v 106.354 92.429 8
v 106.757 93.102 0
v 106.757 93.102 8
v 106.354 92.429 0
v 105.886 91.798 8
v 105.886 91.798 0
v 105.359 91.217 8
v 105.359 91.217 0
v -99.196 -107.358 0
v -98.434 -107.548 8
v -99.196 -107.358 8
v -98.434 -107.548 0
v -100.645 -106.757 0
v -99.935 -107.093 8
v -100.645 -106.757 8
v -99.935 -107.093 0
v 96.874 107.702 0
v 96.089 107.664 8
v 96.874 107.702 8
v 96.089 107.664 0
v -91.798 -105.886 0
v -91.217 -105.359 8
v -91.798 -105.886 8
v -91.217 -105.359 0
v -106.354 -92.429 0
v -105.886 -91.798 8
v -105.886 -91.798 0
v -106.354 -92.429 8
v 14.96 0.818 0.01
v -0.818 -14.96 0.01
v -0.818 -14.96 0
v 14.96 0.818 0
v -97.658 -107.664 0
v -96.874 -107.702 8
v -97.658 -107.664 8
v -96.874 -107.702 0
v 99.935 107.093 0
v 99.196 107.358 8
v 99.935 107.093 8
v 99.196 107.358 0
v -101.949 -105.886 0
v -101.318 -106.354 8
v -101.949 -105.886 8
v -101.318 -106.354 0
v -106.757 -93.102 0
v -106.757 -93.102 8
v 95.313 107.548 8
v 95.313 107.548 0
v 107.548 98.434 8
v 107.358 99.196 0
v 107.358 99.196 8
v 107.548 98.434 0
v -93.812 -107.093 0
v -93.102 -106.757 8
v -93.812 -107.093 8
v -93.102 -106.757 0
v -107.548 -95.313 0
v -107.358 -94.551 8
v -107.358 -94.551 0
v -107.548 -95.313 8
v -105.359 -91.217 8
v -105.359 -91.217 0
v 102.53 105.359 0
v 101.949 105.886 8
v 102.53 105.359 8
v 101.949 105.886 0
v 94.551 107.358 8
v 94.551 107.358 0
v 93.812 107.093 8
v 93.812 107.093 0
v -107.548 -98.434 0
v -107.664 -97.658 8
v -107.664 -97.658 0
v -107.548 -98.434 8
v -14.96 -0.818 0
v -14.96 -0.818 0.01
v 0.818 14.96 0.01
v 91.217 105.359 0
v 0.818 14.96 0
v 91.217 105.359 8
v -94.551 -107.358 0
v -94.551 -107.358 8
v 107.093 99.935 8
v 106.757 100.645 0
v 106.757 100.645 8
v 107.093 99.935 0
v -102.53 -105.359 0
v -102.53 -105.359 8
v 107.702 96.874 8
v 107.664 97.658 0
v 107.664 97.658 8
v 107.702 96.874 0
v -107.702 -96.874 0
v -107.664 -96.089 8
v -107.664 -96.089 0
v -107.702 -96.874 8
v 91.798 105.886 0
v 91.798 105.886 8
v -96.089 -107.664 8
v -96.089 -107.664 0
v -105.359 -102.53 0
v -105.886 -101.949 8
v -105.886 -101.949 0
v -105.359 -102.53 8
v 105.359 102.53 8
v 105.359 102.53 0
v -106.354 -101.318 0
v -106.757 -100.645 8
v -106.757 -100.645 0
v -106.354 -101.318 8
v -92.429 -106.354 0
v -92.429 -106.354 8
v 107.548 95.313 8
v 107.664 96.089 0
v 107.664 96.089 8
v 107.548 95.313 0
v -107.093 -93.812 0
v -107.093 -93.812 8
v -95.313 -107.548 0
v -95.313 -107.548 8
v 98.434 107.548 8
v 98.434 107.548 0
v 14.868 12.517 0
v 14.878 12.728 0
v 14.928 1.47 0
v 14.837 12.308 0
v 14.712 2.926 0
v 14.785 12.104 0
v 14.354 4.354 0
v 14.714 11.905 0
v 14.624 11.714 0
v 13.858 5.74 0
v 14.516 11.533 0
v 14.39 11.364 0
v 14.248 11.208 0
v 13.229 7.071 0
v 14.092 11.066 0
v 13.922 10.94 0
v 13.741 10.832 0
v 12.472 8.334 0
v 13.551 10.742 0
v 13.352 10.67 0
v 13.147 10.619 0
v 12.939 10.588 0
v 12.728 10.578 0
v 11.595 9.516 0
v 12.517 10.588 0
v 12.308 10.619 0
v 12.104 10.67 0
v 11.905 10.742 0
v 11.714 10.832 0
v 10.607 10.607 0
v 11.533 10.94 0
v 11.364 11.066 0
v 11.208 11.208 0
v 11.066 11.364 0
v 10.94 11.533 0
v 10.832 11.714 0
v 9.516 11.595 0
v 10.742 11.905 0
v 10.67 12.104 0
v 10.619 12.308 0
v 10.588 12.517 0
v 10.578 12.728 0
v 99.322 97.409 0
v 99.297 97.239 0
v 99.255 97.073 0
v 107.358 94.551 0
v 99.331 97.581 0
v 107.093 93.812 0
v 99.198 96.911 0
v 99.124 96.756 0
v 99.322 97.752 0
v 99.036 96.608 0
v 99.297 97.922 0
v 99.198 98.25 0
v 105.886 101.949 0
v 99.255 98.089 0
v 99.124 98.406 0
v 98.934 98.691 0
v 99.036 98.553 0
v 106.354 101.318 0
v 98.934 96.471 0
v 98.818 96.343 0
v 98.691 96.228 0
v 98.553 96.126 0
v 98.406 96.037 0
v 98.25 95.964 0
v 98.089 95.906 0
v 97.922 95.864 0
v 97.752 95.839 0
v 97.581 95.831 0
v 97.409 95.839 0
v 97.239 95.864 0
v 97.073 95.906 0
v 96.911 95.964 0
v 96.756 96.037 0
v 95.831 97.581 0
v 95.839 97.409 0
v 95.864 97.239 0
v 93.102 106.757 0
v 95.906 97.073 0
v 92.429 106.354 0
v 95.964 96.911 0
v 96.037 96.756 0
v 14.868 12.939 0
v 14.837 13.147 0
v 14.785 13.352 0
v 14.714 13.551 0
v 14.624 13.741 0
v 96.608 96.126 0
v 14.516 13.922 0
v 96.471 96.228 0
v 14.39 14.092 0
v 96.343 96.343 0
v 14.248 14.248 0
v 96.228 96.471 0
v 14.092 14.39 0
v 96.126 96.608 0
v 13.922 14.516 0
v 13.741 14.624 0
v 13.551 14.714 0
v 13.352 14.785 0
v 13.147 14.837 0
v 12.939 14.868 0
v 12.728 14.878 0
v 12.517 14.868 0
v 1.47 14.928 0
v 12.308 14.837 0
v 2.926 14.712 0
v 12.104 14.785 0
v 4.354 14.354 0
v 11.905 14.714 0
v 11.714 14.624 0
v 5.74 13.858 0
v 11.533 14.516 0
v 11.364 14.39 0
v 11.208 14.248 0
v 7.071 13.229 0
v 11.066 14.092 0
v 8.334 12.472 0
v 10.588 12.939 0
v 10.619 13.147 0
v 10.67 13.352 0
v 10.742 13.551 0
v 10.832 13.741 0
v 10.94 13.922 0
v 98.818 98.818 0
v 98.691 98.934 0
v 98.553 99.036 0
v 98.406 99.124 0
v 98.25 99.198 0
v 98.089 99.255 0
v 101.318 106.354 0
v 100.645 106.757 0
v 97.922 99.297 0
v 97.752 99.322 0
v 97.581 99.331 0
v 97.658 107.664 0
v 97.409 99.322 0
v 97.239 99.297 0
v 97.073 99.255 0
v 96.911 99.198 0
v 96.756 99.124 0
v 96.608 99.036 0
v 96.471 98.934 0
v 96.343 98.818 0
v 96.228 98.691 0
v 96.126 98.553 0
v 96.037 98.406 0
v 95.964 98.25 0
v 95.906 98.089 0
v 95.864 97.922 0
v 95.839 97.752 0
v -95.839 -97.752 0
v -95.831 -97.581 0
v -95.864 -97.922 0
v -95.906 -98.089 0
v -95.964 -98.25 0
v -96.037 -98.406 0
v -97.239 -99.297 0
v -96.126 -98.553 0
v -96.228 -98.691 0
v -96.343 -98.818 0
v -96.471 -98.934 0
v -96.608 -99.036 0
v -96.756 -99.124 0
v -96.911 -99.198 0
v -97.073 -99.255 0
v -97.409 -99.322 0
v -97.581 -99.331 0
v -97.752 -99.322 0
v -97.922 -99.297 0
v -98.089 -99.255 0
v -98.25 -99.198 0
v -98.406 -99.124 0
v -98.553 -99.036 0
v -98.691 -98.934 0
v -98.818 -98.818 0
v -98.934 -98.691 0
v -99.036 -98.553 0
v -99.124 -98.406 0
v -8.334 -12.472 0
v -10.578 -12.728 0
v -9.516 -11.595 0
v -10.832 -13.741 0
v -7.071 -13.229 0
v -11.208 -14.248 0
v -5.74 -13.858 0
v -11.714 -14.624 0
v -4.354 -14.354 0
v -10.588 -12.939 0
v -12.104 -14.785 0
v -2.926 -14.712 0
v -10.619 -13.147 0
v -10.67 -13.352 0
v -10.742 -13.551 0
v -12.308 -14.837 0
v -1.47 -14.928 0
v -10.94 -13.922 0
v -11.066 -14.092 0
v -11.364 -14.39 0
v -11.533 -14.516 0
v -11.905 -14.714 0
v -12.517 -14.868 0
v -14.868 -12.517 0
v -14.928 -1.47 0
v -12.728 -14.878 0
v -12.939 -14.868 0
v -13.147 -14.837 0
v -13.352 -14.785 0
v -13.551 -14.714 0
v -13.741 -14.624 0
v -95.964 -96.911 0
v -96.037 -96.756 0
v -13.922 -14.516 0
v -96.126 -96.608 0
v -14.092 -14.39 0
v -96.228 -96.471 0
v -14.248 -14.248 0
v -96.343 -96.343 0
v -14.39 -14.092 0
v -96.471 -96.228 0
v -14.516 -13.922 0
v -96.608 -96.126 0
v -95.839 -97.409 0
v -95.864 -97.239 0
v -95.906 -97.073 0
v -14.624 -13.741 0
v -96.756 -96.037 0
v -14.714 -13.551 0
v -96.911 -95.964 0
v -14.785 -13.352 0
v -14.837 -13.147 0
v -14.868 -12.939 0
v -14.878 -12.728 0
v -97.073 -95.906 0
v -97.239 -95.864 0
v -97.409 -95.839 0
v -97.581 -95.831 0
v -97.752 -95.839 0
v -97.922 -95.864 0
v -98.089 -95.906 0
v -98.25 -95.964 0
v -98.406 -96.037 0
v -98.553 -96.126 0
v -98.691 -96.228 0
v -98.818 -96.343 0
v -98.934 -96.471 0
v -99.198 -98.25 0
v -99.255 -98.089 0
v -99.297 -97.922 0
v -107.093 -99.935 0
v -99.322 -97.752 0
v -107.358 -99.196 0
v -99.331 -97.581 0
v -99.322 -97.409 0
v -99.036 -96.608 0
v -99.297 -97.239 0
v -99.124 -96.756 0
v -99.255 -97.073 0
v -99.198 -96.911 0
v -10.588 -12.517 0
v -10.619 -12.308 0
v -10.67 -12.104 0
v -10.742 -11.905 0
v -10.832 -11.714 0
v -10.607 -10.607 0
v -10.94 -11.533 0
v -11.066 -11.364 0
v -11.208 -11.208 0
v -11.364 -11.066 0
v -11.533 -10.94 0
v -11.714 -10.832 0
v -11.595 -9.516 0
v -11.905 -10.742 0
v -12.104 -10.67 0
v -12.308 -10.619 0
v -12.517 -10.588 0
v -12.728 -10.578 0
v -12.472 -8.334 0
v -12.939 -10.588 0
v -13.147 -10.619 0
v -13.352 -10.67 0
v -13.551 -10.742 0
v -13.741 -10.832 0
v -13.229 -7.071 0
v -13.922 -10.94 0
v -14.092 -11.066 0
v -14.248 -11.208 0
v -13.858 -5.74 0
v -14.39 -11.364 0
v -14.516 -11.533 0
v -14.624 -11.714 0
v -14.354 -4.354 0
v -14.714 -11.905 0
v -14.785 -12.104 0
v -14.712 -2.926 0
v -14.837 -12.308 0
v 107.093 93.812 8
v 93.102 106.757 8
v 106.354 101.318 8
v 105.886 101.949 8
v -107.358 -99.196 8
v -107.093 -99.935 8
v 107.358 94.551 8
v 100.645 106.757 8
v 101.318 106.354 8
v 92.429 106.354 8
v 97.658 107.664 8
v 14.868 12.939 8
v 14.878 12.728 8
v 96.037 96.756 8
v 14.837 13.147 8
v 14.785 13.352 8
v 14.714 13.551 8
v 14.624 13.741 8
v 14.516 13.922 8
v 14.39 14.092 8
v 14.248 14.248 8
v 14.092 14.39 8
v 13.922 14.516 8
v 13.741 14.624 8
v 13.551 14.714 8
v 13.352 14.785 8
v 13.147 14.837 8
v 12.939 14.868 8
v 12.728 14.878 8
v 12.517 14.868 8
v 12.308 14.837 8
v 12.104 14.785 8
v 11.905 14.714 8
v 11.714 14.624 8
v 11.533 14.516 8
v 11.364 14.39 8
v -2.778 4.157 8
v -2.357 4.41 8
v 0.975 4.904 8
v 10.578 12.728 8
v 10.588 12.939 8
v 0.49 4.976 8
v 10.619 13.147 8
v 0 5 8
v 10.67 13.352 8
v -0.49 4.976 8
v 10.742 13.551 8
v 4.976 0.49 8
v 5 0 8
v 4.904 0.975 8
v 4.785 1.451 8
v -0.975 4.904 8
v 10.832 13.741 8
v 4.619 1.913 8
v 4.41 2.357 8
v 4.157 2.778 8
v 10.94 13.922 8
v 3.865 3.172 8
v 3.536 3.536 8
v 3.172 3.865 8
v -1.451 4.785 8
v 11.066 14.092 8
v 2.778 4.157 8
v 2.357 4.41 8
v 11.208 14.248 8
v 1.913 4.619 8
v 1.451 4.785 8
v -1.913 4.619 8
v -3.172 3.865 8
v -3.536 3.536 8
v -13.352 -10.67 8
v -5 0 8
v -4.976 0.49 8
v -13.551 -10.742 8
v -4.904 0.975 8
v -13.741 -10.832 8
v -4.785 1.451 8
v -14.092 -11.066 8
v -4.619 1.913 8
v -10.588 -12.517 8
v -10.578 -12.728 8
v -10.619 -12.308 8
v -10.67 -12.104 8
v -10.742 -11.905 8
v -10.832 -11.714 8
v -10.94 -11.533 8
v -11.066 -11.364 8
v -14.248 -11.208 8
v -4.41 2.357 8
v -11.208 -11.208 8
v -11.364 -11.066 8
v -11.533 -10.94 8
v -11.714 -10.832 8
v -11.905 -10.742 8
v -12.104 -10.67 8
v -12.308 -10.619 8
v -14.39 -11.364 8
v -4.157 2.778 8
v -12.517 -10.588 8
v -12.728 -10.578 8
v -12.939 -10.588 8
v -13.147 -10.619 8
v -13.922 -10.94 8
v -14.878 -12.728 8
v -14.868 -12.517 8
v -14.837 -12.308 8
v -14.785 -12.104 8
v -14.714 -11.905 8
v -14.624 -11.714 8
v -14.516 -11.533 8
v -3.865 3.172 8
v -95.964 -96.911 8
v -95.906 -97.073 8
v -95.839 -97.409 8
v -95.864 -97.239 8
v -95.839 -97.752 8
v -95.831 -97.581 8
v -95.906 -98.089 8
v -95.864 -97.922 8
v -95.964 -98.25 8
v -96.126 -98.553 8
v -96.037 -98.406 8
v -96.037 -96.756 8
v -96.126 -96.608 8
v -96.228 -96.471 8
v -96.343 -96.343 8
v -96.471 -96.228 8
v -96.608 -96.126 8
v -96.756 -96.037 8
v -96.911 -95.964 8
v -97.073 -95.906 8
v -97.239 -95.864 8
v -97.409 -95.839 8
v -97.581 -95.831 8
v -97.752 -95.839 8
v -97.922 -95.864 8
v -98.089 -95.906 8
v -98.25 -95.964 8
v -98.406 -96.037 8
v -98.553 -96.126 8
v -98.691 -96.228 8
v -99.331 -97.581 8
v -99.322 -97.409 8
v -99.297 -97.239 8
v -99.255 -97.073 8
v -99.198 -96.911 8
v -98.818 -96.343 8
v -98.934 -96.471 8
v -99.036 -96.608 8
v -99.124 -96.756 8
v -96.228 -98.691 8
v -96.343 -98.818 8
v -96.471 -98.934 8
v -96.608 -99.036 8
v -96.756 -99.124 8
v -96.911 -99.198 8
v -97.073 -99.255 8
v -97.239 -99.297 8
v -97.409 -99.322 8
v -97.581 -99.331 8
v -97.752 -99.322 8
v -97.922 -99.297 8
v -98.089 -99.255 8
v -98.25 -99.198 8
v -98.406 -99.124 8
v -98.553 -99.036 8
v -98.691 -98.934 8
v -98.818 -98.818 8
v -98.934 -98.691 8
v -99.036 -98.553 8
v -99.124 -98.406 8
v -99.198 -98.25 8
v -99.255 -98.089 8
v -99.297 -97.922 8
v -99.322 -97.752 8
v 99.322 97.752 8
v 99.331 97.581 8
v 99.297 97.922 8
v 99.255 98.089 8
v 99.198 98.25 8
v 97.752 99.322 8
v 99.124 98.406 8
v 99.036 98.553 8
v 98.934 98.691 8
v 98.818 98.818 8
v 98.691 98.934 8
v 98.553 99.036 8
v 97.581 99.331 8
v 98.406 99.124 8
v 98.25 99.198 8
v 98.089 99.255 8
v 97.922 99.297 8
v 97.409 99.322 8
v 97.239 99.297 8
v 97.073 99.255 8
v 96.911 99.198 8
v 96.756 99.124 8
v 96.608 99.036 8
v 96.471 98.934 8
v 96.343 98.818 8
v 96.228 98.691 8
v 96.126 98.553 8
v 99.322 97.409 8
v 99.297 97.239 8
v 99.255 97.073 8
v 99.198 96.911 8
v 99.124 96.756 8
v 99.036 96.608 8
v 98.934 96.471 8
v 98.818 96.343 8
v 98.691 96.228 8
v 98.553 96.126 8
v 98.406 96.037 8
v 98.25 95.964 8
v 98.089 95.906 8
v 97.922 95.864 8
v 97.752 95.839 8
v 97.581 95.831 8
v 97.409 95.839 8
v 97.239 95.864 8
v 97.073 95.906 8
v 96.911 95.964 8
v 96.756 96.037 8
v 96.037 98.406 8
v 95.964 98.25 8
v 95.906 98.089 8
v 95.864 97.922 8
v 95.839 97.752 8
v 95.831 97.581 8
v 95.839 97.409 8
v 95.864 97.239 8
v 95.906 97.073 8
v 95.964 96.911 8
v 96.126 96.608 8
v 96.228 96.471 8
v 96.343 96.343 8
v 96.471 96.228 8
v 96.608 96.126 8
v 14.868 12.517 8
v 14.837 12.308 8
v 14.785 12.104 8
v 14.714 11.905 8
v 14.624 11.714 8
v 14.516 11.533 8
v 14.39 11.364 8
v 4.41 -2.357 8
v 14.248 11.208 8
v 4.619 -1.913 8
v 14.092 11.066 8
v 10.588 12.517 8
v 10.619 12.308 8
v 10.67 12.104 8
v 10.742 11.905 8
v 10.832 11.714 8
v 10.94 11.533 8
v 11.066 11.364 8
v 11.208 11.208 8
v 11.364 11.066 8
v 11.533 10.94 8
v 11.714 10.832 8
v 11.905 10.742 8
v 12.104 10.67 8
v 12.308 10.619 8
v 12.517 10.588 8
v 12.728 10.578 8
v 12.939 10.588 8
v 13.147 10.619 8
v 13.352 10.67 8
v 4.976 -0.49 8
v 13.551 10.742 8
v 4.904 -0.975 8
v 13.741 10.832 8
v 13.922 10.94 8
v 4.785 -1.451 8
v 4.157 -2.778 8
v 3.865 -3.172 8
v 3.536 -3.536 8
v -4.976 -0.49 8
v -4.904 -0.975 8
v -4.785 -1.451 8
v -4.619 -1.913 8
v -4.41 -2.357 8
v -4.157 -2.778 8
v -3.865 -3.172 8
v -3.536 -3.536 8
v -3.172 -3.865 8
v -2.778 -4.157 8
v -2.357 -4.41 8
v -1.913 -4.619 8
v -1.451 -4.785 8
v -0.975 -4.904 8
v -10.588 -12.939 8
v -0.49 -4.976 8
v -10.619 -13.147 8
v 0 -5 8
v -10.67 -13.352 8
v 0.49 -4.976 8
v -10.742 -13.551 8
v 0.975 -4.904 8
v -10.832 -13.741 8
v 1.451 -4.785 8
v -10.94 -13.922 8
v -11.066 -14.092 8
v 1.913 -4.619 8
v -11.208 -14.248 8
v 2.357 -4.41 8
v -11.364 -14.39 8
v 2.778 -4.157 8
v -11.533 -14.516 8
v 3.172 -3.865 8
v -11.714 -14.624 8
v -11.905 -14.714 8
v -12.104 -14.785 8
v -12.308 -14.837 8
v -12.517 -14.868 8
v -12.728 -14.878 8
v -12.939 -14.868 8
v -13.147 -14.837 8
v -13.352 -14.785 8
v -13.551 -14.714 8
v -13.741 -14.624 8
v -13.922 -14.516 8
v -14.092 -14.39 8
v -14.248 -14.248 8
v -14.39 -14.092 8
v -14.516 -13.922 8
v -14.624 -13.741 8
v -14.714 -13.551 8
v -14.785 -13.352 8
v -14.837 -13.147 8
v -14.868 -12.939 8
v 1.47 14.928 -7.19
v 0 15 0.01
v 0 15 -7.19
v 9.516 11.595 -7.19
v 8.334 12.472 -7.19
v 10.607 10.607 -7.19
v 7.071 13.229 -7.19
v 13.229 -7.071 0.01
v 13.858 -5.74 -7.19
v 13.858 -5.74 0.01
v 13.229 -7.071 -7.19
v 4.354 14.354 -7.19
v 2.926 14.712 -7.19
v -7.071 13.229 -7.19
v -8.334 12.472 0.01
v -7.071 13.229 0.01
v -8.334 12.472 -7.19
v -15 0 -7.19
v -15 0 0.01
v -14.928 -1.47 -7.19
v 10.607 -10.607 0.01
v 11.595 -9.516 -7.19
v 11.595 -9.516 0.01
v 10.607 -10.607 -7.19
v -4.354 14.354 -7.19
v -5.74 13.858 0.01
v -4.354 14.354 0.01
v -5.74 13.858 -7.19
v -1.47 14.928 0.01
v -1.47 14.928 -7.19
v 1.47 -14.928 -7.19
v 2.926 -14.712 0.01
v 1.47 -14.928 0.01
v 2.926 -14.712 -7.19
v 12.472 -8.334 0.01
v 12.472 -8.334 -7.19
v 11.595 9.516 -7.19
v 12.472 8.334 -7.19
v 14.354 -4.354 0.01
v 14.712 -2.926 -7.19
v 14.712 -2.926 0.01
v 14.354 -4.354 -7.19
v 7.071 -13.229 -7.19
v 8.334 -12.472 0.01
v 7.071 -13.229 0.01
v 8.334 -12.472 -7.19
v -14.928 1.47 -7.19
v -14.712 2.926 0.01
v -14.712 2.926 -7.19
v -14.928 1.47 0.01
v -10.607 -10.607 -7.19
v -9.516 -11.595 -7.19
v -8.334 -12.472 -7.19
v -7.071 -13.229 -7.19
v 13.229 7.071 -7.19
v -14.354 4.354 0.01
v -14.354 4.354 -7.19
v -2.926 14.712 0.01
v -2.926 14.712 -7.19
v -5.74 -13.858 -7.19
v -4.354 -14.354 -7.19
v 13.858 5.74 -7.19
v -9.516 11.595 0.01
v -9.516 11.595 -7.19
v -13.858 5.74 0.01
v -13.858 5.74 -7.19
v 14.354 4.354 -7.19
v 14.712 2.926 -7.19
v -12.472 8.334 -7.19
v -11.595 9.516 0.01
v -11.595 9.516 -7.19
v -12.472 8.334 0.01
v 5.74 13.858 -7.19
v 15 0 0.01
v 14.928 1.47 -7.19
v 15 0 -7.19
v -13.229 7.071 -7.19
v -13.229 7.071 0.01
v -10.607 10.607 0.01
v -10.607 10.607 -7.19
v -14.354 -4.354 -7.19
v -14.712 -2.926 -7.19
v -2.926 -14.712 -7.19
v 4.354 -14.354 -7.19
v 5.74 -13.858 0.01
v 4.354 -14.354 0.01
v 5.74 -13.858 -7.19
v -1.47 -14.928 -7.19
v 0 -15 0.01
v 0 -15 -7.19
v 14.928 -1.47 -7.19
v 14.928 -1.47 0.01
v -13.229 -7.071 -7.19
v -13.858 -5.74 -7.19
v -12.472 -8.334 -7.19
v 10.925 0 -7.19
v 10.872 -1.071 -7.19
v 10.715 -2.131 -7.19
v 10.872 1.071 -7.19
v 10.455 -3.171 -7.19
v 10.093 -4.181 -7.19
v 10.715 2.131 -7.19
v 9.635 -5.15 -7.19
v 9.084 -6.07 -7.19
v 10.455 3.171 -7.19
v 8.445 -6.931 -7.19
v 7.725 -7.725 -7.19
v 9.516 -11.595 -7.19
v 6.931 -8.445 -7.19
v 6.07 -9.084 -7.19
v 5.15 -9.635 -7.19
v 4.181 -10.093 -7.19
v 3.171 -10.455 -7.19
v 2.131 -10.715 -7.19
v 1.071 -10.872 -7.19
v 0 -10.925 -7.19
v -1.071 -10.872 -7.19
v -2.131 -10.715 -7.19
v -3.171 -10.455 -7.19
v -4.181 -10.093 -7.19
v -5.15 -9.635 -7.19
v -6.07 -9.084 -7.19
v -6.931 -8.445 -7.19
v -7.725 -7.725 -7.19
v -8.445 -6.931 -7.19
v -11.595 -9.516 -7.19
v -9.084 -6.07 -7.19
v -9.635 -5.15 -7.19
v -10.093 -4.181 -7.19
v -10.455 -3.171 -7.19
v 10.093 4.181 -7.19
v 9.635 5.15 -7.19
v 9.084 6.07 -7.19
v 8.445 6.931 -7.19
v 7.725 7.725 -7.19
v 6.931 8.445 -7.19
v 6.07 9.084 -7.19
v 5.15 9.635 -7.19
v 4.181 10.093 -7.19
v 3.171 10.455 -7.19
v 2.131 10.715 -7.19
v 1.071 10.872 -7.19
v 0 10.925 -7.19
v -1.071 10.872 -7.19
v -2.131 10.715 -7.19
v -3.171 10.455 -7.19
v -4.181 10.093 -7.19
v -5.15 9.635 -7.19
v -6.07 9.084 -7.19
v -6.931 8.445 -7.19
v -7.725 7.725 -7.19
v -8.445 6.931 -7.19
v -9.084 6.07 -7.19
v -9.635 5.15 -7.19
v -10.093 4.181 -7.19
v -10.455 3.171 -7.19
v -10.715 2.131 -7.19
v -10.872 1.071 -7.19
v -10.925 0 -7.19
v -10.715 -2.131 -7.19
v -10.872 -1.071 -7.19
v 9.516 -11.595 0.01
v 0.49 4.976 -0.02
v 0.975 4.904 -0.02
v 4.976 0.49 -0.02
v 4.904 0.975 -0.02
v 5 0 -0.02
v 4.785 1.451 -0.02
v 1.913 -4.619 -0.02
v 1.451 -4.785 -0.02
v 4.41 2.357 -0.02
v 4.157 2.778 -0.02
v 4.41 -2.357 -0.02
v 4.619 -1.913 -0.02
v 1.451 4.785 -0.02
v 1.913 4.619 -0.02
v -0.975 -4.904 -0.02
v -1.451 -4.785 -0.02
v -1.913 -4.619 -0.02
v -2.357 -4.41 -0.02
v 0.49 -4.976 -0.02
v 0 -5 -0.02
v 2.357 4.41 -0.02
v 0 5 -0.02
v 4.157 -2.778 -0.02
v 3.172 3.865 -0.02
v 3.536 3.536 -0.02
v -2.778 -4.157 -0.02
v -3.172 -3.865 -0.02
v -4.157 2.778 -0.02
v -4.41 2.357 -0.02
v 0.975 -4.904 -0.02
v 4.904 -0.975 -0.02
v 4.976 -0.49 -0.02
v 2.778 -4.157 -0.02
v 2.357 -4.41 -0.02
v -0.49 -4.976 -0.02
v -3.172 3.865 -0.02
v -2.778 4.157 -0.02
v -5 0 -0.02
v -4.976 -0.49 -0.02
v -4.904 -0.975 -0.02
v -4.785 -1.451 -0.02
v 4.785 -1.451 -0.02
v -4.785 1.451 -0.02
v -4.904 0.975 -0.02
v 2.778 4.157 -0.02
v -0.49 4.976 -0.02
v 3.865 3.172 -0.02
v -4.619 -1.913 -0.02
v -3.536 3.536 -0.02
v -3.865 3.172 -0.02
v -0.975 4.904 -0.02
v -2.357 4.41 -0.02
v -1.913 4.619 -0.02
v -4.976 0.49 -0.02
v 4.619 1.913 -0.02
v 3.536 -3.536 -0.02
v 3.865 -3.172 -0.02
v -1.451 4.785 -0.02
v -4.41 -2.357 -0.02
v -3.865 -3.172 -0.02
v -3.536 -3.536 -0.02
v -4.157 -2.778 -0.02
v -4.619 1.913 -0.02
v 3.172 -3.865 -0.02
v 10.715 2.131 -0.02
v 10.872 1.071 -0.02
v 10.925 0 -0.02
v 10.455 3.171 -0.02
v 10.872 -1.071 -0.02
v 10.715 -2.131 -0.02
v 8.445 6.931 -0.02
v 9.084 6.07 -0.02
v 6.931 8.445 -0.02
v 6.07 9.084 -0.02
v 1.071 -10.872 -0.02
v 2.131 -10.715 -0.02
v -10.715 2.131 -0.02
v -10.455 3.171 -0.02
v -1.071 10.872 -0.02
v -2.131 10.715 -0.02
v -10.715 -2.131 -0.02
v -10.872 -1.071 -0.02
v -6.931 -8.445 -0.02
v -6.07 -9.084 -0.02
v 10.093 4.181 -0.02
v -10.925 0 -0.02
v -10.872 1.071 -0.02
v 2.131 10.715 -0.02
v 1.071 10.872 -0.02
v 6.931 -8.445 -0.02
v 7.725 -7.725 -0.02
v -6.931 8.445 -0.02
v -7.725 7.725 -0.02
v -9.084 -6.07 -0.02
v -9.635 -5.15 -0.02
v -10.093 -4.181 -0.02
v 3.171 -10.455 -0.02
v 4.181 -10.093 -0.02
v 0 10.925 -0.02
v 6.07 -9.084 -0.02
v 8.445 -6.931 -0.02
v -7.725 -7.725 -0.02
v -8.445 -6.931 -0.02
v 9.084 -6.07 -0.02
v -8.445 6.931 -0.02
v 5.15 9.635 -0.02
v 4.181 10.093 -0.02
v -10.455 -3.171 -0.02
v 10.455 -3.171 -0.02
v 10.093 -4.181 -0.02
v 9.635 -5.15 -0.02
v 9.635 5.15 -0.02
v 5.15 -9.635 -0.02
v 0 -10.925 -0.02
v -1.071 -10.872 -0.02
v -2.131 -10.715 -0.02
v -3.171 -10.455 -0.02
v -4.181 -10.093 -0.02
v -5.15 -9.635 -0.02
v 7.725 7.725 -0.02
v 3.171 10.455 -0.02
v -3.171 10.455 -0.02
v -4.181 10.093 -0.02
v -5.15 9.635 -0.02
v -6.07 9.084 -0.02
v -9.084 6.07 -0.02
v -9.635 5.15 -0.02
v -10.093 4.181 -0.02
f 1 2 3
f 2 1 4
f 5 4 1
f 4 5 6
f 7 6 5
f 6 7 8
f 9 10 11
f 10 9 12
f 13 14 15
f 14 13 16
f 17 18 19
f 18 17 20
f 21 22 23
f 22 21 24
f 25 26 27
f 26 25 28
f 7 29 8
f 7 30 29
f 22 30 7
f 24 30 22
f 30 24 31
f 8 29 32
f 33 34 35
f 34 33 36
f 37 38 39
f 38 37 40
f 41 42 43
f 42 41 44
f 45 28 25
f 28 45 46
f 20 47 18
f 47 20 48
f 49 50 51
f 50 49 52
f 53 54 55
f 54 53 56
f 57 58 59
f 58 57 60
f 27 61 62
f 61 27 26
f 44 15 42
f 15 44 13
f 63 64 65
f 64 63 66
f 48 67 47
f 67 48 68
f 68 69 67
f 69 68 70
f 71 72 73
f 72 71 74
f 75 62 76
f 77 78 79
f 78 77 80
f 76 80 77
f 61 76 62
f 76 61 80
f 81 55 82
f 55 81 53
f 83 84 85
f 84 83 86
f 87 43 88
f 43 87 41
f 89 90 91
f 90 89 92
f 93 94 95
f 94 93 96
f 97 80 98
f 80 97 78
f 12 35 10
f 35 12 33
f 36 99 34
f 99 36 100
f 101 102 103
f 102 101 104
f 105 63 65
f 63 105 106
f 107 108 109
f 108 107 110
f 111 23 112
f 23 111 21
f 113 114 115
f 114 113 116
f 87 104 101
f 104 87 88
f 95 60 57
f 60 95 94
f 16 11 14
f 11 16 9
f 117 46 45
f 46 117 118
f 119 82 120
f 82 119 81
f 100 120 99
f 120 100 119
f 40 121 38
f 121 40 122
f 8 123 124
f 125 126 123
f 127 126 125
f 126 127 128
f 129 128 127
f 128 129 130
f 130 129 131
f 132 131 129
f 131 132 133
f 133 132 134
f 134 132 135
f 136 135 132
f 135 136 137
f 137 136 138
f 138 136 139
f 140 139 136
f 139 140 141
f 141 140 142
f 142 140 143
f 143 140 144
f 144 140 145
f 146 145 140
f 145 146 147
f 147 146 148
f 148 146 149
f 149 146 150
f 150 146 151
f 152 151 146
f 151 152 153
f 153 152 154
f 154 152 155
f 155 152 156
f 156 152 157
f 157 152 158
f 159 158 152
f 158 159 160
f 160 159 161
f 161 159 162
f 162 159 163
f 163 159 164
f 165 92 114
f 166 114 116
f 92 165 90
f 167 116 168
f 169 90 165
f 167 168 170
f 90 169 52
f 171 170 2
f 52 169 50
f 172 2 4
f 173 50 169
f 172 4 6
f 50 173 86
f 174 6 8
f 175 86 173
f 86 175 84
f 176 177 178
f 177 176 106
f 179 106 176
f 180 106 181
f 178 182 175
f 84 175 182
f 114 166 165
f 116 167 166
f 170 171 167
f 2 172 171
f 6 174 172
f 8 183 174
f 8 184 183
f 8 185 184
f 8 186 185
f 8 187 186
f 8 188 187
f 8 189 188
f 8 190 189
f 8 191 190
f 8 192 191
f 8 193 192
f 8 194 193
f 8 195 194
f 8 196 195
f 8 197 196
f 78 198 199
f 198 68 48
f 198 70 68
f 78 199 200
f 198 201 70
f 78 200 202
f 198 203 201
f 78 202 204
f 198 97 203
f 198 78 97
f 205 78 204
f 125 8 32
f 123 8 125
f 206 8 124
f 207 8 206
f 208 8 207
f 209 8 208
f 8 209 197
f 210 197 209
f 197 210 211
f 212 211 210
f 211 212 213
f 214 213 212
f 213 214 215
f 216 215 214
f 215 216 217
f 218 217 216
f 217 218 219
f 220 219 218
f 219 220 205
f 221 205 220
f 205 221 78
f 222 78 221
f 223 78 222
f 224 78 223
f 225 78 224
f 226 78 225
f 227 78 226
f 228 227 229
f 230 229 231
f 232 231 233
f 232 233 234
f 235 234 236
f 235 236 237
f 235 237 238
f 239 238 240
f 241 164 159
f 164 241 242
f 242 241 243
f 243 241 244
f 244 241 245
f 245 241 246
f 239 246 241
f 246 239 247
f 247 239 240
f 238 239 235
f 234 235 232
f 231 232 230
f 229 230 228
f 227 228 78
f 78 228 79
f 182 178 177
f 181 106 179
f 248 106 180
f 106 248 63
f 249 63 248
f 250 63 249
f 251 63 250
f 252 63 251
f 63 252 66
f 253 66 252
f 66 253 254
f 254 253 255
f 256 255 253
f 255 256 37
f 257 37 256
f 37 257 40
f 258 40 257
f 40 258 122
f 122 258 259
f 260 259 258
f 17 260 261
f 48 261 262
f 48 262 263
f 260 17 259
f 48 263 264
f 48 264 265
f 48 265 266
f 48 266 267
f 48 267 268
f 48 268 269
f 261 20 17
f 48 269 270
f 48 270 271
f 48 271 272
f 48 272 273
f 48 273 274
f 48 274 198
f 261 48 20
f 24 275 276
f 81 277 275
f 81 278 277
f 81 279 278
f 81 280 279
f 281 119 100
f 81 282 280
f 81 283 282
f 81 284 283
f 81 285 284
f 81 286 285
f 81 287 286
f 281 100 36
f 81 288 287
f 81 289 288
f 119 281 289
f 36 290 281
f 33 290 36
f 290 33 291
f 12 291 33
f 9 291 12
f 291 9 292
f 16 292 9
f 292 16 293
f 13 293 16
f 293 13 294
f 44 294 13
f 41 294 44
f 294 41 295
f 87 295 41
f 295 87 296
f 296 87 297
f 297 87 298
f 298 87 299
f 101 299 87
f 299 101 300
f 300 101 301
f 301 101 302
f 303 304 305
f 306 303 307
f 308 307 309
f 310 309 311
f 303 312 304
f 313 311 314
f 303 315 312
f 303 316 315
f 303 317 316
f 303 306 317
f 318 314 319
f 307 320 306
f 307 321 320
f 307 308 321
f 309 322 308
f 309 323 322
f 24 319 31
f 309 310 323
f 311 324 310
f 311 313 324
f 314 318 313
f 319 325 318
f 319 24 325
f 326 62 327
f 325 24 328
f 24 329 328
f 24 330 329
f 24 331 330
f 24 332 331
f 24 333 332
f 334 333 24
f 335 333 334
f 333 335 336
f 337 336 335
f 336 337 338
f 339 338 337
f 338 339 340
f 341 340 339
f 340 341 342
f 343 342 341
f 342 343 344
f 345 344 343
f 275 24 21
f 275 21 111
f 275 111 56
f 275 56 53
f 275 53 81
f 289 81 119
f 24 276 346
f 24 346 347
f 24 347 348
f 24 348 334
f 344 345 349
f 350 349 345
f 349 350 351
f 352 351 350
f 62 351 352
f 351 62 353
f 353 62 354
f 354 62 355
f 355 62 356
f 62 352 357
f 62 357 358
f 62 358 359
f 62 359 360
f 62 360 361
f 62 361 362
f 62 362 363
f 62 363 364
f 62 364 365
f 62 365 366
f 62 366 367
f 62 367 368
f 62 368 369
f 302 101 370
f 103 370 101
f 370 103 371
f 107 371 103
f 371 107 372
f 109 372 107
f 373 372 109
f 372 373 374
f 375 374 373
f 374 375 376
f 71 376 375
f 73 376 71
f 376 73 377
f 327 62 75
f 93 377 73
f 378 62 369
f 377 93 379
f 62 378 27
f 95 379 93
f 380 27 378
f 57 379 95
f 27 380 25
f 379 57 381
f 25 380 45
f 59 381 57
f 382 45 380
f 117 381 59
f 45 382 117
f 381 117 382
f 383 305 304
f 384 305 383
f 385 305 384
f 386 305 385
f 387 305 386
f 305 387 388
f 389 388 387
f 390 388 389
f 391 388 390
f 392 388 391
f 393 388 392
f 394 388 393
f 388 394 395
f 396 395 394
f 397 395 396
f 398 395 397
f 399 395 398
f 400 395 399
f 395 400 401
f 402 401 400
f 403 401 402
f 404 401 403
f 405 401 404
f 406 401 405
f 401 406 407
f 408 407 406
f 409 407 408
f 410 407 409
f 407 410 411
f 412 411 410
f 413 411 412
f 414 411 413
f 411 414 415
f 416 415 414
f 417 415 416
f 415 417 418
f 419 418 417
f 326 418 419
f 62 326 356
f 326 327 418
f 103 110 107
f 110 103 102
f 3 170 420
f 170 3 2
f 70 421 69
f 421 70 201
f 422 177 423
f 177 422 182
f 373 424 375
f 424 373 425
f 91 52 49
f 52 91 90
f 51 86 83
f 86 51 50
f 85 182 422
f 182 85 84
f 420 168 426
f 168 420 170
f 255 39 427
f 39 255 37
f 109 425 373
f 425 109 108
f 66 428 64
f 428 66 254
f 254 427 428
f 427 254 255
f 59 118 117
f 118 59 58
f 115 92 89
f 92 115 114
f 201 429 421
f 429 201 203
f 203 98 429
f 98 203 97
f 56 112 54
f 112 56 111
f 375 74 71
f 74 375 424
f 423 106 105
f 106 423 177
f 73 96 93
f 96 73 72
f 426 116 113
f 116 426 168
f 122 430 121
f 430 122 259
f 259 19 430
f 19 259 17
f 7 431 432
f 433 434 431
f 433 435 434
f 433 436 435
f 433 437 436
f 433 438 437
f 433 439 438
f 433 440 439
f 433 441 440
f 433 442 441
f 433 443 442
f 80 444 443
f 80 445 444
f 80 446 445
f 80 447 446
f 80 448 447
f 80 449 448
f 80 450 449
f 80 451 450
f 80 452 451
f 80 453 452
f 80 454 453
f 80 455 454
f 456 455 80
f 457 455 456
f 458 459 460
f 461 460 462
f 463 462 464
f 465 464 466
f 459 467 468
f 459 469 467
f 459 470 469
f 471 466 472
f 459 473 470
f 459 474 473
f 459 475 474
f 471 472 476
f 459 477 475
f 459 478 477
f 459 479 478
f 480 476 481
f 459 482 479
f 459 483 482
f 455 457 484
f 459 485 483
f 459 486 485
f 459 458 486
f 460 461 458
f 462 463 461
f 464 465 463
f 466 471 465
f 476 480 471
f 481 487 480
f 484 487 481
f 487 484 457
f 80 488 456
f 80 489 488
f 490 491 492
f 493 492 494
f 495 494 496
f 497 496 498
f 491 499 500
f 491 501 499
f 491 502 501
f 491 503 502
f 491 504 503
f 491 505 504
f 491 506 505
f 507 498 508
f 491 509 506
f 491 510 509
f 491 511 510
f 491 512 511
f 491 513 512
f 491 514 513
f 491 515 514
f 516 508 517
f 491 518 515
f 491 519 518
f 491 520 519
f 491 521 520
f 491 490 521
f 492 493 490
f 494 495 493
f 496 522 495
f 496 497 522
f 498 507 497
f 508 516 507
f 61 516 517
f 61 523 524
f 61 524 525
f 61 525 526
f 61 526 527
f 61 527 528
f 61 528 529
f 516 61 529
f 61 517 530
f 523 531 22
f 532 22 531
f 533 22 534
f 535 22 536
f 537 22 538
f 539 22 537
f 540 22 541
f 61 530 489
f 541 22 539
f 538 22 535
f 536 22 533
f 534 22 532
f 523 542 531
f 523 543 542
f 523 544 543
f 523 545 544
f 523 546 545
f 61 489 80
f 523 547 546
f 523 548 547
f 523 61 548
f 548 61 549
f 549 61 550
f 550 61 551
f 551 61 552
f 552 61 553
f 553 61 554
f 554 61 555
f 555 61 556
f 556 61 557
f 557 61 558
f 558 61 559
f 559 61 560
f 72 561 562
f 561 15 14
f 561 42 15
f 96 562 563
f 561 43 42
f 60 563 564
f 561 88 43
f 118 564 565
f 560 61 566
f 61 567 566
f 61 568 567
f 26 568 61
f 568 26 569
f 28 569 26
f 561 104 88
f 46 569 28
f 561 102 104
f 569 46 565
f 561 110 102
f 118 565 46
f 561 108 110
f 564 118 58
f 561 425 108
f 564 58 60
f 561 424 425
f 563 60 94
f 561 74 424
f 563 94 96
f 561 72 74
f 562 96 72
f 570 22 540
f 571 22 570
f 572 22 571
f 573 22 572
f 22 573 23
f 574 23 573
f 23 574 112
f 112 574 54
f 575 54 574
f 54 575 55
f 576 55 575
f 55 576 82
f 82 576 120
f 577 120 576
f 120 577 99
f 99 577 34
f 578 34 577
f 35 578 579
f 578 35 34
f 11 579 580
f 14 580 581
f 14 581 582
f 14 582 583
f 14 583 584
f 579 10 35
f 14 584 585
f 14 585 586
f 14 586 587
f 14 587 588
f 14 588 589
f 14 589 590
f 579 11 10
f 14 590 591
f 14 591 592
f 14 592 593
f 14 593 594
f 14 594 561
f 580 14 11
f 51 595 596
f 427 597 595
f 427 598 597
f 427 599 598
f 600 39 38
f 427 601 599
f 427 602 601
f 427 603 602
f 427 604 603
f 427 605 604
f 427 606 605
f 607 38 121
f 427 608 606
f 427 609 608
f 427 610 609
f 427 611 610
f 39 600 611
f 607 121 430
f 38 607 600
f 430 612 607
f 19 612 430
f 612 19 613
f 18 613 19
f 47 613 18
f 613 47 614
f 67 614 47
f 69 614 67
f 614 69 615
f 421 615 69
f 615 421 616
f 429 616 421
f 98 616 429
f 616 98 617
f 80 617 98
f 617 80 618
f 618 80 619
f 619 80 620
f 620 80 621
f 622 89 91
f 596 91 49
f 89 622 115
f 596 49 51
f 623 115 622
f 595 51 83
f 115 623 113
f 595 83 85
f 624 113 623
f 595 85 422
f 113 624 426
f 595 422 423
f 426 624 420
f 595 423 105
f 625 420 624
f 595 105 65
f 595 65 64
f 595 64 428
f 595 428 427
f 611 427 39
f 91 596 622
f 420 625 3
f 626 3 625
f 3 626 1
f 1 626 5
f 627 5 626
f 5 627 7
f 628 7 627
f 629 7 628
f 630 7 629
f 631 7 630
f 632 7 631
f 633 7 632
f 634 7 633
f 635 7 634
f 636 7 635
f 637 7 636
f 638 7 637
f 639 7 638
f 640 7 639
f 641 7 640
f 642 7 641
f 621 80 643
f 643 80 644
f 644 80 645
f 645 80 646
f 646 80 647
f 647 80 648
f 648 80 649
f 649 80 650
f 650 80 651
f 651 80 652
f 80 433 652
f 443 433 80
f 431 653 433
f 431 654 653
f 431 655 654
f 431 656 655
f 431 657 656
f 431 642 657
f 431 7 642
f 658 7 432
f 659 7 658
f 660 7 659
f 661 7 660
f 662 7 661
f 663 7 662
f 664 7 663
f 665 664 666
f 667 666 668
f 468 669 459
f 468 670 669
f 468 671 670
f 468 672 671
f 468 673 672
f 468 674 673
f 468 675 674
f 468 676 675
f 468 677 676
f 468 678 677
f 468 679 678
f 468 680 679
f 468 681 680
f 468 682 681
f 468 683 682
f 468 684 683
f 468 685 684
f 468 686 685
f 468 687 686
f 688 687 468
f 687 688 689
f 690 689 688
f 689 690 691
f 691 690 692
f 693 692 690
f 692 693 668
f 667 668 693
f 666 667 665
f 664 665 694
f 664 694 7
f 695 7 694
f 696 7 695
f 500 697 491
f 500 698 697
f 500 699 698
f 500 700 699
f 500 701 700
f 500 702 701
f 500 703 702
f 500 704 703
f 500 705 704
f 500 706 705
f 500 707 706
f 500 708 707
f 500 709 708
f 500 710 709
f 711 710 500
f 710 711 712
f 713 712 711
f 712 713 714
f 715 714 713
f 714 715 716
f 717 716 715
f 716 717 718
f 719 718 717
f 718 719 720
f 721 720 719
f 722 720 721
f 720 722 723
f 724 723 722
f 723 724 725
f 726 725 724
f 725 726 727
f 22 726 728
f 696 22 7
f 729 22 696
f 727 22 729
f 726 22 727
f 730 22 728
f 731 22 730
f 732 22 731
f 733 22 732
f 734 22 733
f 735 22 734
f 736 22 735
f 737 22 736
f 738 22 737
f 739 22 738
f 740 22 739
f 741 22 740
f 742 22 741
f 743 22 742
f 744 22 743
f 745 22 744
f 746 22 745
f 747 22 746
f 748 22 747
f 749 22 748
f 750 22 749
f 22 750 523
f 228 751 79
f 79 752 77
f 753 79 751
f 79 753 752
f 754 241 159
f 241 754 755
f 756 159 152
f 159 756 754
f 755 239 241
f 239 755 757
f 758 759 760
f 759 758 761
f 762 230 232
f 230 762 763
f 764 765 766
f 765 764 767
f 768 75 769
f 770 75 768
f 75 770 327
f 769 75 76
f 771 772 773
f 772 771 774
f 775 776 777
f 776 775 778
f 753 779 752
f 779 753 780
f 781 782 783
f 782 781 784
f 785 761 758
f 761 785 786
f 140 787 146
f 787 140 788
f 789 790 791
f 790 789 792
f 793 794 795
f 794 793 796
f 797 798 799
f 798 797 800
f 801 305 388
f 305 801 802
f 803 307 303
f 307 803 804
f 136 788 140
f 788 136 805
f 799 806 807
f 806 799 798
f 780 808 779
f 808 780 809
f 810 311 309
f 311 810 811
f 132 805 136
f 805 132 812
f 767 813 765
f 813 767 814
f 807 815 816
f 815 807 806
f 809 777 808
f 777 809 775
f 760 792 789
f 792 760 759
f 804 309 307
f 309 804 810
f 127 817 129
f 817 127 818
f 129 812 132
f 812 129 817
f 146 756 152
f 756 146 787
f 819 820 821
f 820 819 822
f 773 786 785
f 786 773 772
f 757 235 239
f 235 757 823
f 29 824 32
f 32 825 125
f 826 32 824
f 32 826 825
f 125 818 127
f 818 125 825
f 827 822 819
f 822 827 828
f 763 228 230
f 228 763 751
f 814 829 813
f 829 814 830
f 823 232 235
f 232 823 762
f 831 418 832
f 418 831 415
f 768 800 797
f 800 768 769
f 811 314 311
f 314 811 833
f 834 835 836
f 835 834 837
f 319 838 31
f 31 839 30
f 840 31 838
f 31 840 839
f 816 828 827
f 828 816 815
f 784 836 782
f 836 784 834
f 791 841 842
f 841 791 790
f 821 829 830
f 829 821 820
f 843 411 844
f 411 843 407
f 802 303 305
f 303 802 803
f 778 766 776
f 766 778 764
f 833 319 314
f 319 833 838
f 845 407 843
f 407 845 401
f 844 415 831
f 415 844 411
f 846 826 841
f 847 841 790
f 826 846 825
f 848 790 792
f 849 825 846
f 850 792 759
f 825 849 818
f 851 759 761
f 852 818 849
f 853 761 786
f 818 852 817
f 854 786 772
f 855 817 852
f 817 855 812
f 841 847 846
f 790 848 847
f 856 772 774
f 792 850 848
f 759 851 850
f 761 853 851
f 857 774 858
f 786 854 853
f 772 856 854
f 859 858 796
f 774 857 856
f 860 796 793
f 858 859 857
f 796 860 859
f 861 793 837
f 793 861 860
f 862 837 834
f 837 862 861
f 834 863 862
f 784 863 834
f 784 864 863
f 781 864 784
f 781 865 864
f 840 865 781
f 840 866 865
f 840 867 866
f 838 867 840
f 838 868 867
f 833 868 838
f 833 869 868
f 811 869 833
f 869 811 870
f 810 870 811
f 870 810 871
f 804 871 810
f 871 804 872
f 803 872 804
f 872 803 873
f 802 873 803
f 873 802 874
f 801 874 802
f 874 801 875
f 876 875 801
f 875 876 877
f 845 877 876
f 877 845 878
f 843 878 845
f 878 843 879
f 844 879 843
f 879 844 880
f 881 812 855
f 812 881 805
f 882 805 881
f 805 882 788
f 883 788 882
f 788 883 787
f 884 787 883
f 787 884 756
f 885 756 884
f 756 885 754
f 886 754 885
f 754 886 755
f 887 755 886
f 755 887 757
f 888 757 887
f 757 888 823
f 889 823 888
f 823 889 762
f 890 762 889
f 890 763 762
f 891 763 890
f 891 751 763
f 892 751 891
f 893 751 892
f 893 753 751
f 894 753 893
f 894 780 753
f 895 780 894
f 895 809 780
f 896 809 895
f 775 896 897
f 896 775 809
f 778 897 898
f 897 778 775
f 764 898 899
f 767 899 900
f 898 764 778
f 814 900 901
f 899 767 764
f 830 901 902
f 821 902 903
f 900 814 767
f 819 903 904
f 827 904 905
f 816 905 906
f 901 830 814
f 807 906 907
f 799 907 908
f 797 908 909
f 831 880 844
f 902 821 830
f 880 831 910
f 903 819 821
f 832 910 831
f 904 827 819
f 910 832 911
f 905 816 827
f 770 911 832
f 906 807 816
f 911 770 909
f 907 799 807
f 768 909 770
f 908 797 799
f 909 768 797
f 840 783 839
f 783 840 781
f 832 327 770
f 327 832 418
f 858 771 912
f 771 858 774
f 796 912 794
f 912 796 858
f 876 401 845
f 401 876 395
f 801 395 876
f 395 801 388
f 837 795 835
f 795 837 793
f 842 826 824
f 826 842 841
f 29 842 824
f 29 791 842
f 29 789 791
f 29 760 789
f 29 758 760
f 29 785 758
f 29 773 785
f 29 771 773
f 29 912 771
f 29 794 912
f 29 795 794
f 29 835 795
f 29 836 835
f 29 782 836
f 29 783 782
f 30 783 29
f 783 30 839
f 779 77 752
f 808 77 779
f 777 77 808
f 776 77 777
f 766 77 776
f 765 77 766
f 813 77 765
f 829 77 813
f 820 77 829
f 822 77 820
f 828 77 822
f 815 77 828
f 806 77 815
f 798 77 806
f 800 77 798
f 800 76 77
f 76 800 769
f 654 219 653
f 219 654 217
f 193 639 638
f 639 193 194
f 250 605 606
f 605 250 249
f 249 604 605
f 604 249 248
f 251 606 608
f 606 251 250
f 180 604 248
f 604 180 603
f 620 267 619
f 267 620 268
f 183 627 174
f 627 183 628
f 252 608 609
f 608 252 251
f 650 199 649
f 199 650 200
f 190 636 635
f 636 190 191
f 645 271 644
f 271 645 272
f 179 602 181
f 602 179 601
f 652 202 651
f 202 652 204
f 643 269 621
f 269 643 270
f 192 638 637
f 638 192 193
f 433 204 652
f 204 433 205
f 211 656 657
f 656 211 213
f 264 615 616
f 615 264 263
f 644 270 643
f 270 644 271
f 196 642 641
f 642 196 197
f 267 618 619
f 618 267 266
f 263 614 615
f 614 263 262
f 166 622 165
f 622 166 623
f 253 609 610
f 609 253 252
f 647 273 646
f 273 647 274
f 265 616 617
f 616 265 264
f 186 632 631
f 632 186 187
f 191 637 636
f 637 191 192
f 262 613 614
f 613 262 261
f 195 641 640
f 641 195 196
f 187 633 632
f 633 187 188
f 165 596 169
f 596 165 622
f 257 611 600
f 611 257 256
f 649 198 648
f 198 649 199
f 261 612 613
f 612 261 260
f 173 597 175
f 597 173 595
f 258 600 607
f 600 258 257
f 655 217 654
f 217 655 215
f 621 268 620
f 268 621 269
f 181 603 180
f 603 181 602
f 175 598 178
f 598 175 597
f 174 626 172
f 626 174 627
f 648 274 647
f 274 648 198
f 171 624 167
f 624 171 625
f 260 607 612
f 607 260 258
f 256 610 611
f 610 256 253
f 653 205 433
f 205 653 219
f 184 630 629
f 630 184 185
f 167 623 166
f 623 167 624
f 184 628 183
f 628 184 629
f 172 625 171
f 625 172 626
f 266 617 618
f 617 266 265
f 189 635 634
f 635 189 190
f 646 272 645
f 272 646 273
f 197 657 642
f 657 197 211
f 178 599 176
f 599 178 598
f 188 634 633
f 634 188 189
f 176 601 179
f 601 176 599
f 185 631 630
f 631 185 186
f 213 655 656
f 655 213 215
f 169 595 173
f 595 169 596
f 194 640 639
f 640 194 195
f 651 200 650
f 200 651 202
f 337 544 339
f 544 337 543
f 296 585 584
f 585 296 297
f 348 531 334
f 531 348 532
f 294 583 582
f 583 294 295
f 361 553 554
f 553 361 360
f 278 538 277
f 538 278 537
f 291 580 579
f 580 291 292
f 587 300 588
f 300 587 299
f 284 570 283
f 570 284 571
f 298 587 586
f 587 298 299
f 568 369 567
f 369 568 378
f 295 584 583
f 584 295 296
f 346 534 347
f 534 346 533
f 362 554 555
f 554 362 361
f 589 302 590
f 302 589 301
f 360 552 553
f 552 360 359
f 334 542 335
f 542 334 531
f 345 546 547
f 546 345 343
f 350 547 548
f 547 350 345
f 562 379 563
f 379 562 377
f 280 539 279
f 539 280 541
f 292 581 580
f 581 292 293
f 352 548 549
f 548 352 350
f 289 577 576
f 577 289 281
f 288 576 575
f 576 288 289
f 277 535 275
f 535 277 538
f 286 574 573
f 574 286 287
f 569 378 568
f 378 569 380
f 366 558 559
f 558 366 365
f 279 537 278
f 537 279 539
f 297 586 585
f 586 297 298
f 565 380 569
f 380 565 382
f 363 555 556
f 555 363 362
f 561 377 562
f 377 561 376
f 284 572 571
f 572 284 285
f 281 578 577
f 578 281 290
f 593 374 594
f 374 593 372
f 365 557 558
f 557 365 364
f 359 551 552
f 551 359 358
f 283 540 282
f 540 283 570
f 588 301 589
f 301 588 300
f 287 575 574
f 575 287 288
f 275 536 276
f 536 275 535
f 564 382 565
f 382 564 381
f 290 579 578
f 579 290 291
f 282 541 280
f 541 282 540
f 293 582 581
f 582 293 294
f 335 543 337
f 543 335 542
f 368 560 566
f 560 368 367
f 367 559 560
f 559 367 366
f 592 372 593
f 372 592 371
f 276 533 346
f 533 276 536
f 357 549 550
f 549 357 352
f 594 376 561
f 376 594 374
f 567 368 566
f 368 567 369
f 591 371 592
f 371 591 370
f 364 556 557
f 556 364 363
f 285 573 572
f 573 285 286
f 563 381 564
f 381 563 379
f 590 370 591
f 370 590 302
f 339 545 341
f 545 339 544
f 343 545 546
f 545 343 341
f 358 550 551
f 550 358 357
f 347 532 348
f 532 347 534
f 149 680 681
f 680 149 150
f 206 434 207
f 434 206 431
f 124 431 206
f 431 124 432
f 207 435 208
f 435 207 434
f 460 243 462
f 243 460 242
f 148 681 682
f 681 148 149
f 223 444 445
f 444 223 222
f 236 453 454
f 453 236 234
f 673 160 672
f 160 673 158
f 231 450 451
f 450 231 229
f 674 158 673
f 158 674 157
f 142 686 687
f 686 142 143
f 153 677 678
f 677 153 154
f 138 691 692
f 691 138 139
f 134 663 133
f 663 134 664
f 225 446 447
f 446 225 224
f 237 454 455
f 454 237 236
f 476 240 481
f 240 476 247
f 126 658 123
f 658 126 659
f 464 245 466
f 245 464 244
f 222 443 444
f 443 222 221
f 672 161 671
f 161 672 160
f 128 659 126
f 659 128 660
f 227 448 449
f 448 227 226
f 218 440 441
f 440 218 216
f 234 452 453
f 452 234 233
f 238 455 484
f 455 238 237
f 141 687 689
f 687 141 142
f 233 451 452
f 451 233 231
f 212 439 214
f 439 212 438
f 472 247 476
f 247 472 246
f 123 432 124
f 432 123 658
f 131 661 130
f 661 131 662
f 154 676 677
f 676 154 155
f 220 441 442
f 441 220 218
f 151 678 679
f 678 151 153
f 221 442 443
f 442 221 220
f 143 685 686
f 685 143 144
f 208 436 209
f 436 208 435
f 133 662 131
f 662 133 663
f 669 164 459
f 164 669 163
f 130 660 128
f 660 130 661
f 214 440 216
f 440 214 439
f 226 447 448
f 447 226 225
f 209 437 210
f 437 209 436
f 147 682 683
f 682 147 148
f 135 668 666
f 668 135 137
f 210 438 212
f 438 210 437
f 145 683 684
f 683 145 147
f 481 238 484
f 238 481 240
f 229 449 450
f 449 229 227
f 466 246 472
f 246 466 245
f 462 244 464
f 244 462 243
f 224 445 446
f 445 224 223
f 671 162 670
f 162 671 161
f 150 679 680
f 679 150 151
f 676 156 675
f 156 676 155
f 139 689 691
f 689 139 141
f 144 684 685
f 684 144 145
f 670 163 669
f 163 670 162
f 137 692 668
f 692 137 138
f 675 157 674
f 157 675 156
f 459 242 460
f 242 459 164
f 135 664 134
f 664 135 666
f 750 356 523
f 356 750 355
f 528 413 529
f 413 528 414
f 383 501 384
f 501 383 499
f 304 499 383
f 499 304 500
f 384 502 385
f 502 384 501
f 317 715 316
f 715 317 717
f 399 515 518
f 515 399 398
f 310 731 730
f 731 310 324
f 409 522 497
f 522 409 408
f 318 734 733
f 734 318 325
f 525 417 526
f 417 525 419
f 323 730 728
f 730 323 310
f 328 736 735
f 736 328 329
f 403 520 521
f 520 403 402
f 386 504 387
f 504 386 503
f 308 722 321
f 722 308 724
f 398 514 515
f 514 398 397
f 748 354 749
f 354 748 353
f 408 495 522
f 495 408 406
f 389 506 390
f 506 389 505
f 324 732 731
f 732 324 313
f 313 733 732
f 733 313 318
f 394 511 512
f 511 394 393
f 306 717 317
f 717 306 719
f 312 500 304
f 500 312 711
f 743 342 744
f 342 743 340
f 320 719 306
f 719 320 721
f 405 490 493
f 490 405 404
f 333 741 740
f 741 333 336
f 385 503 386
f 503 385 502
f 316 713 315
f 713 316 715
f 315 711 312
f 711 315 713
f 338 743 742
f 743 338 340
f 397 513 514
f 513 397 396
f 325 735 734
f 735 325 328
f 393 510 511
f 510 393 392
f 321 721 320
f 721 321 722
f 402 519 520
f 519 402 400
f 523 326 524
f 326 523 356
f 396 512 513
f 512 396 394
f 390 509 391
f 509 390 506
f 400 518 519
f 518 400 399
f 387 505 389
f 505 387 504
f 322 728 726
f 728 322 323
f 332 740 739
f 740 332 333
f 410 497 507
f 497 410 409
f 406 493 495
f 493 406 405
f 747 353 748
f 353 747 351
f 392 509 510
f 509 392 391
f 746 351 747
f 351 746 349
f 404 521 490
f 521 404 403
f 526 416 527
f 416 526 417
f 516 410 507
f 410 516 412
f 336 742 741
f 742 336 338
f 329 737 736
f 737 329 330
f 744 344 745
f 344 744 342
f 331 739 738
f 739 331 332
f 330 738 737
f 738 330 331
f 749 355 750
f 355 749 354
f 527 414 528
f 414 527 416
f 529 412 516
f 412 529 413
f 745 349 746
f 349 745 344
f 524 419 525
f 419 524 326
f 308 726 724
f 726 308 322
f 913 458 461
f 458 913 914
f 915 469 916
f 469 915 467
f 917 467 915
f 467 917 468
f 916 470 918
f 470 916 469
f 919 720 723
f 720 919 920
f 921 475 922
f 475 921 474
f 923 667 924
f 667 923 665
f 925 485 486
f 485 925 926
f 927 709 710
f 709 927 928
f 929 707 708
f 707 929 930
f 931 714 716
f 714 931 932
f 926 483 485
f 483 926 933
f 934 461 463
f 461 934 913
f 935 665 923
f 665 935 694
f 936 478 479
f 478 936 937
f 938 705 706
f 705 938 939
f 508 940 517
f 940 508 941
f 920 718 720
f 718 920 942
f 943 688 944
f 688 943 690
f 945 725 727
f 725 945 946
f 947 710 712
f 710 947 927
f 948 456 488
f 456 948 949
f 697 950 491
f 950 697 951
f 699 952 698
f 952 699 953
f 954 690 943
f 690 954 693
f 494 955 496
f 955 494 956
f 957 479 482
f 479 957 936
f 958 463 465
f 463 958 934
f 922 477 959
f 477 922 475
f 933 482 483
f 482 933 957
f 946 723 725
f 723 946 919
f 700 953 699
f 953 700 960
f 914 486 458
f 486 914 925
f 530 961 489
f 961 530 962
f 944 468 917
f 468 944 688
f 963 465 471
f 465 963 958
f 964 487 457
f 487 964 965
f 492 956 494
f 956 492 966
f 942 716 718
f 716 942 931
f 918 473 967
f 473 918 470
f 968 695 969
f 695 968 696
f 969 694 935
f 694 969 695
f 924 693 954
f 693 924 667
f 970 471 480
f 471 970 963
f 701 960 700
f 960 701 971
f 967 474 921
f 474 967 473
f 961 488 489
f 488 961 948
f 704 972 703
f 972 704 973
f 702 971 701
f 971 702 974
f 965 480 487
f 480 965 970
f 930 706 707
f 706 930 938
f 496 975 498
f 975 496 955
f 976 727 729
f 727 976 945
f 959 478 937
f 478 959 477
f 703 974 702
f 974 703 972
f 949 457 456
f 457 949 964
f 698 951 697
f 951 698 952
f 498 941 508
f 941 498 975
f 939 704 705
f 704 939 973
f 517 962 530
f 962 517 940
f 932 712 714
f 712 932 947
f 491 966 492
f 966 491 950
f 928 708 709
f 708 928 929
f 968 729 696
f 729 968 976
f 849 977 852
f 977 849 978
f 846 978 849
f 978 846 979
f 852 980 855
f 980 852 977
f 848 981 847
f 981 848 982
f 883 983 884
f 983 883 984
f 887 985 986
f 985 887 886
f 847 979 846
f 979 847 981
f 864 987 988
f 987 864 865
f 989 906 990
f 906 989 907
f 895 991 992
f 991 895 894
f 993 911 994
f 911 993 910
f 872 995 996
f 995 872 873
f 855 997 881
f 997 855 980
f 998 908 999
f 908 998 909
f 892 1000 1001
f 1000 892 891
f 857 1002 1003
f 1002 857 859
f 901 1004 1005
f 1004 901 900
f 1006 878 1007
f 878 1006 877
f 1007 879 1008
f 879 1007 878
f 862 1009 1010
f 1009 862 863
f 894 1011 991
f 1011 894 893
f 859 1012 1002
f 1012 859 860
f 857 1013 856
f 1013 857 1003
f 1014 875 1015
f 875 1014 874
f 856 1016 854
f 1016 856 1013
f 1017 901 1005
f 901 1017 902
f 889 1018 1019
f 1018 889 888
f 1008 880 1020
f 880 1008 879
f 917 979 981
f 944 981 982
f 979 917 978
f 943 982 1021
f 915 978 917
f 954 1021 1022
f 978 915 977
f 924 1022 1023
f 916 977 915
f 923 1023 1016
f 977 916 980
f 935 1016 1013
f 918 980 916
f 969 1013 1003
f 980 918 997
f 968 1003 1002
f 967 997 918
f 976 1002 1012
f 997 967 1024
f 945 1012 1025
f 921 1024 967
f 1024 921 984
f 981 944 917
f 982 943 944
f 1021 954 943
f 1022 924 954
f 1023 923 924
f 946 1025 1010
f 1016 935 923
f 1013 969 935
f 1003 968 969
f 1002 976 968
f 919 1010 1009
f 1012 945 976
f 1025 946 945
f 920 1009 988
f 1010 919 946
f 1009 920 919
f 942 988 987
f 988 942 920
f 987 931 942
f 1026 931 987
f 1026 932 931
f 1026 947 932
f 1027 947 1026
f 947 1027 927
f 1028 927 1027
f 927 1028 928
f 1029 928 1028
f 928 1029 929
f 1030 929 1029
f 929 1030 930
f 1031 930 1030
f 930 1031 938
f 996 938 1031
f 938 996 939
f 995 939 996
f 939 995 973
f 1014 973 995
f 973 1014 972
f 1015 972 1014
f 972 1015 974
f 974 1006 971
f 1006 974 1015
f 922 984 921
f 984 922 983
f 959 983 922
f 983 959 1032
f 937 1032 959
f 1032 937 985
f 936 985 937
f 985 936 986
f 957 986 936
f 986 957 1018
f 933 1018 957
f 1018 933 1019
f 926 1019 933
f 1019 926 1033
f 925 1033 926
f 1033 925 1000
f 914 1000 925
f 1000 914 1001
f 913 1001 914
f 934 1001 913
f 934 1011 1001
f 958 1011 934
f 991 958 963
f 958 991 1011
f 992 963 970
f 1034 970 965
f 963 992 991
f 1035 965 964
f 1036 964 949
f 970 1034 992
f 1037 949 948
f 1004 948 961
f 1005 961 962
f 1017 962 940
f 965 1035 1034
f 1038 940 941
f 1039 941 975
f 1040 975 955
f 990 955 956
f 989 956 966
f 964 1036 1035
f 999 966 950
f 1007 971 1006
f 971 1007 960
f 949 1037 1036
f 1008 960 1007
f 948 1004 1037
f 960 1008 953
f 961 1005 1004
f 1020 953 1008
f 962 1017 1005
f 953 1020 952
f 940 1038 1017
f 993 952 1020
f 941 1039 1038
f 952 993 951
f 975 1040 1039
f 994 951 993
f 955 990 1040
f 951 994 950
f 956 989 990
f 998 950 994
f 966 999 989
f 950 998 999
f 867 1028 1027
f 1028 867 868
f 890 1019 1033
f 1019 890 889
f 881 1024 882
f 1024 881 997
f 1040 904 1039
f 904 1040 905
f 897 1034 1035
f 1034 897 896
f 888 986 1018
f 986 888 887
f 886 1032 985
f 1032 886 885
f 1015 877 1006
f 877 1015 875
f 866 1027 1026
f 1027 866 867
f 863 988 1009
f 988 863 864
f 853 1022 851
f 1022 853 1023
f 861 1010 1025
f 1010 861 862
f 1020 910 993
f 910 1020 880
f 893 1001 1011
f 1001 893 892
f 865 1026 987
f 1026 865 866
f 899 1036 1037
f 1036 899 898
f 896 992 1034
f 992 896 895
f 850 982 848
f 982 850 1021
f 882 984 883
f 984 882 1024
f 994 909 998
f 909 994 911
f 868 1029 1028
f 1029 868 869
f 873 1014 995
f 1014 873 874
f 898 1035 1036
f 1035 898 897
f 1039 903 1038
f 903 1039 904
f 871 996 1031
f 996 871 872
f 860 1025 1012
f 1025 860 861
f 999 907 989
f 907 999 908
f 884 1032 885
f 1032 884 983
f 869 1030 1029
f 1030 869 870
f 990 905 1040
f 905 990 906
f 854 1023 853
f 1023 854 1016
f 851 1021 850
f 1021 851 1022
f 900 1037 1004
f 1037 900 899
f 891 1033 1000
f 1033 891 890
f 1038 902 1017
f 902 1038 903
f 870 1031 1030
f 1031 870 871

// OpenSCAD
// Gen-DM — front BEARING BRIDGE (bar endbell, 2026-10-10): a 608 boss on a 20 mm wide bar that spans the
// two frame rods at 45 deg and 45+180 deg (R = flange_bolt_r). The front bridge uses the rods at 45/225 deg, the rear
// bridge the rods at 135/315 deg, so the two bridges cross at 90 deg and the stator is held at 4 points.
// A bar instead of a full disc is what lets this big-ring kit fit ONE 410 mm plate. Print flat face DOWN (boss up, no supports).
// Brace holes (temporary M4 jack rods, R = brace_r) sit on the bar axis.
include <parameters.scad>;
$fn = 64;
bar_w = 20;
bar_len = 2 * (flange_bolt_r + 9);
module bar_2d() { offset(r=8) offset(delta=-8) square([bar_len, bar_w], center=true); }
difference() {
    rotate([0, 0, 45]) union() {
        linear_extrude(endbell_thick) bar_2d();
        translate([0, 0, -bearing_h + 0.01]) cylinder(d=30, h=bearing_h);
    }
    translate([0, 0, -bearing_h - 0.1]) cylinder(d=endbell_shaft_clear, h=50);
    translate([0, 0, -bearing_h - 0.02]) cylinder(d=bearing_d, h=bearing_h);
    for (s = [0, 180]) rotate([0, 0, 45 + s]) translate([flange_bolt_r, 0, -20]) cylinder(d=m3_clear, h=60);
    for (a = brace_angles) translate([brace_r*cos(a), brace_r*sin(a), -20]) cylinder(d=brace_d, h=50);
}
